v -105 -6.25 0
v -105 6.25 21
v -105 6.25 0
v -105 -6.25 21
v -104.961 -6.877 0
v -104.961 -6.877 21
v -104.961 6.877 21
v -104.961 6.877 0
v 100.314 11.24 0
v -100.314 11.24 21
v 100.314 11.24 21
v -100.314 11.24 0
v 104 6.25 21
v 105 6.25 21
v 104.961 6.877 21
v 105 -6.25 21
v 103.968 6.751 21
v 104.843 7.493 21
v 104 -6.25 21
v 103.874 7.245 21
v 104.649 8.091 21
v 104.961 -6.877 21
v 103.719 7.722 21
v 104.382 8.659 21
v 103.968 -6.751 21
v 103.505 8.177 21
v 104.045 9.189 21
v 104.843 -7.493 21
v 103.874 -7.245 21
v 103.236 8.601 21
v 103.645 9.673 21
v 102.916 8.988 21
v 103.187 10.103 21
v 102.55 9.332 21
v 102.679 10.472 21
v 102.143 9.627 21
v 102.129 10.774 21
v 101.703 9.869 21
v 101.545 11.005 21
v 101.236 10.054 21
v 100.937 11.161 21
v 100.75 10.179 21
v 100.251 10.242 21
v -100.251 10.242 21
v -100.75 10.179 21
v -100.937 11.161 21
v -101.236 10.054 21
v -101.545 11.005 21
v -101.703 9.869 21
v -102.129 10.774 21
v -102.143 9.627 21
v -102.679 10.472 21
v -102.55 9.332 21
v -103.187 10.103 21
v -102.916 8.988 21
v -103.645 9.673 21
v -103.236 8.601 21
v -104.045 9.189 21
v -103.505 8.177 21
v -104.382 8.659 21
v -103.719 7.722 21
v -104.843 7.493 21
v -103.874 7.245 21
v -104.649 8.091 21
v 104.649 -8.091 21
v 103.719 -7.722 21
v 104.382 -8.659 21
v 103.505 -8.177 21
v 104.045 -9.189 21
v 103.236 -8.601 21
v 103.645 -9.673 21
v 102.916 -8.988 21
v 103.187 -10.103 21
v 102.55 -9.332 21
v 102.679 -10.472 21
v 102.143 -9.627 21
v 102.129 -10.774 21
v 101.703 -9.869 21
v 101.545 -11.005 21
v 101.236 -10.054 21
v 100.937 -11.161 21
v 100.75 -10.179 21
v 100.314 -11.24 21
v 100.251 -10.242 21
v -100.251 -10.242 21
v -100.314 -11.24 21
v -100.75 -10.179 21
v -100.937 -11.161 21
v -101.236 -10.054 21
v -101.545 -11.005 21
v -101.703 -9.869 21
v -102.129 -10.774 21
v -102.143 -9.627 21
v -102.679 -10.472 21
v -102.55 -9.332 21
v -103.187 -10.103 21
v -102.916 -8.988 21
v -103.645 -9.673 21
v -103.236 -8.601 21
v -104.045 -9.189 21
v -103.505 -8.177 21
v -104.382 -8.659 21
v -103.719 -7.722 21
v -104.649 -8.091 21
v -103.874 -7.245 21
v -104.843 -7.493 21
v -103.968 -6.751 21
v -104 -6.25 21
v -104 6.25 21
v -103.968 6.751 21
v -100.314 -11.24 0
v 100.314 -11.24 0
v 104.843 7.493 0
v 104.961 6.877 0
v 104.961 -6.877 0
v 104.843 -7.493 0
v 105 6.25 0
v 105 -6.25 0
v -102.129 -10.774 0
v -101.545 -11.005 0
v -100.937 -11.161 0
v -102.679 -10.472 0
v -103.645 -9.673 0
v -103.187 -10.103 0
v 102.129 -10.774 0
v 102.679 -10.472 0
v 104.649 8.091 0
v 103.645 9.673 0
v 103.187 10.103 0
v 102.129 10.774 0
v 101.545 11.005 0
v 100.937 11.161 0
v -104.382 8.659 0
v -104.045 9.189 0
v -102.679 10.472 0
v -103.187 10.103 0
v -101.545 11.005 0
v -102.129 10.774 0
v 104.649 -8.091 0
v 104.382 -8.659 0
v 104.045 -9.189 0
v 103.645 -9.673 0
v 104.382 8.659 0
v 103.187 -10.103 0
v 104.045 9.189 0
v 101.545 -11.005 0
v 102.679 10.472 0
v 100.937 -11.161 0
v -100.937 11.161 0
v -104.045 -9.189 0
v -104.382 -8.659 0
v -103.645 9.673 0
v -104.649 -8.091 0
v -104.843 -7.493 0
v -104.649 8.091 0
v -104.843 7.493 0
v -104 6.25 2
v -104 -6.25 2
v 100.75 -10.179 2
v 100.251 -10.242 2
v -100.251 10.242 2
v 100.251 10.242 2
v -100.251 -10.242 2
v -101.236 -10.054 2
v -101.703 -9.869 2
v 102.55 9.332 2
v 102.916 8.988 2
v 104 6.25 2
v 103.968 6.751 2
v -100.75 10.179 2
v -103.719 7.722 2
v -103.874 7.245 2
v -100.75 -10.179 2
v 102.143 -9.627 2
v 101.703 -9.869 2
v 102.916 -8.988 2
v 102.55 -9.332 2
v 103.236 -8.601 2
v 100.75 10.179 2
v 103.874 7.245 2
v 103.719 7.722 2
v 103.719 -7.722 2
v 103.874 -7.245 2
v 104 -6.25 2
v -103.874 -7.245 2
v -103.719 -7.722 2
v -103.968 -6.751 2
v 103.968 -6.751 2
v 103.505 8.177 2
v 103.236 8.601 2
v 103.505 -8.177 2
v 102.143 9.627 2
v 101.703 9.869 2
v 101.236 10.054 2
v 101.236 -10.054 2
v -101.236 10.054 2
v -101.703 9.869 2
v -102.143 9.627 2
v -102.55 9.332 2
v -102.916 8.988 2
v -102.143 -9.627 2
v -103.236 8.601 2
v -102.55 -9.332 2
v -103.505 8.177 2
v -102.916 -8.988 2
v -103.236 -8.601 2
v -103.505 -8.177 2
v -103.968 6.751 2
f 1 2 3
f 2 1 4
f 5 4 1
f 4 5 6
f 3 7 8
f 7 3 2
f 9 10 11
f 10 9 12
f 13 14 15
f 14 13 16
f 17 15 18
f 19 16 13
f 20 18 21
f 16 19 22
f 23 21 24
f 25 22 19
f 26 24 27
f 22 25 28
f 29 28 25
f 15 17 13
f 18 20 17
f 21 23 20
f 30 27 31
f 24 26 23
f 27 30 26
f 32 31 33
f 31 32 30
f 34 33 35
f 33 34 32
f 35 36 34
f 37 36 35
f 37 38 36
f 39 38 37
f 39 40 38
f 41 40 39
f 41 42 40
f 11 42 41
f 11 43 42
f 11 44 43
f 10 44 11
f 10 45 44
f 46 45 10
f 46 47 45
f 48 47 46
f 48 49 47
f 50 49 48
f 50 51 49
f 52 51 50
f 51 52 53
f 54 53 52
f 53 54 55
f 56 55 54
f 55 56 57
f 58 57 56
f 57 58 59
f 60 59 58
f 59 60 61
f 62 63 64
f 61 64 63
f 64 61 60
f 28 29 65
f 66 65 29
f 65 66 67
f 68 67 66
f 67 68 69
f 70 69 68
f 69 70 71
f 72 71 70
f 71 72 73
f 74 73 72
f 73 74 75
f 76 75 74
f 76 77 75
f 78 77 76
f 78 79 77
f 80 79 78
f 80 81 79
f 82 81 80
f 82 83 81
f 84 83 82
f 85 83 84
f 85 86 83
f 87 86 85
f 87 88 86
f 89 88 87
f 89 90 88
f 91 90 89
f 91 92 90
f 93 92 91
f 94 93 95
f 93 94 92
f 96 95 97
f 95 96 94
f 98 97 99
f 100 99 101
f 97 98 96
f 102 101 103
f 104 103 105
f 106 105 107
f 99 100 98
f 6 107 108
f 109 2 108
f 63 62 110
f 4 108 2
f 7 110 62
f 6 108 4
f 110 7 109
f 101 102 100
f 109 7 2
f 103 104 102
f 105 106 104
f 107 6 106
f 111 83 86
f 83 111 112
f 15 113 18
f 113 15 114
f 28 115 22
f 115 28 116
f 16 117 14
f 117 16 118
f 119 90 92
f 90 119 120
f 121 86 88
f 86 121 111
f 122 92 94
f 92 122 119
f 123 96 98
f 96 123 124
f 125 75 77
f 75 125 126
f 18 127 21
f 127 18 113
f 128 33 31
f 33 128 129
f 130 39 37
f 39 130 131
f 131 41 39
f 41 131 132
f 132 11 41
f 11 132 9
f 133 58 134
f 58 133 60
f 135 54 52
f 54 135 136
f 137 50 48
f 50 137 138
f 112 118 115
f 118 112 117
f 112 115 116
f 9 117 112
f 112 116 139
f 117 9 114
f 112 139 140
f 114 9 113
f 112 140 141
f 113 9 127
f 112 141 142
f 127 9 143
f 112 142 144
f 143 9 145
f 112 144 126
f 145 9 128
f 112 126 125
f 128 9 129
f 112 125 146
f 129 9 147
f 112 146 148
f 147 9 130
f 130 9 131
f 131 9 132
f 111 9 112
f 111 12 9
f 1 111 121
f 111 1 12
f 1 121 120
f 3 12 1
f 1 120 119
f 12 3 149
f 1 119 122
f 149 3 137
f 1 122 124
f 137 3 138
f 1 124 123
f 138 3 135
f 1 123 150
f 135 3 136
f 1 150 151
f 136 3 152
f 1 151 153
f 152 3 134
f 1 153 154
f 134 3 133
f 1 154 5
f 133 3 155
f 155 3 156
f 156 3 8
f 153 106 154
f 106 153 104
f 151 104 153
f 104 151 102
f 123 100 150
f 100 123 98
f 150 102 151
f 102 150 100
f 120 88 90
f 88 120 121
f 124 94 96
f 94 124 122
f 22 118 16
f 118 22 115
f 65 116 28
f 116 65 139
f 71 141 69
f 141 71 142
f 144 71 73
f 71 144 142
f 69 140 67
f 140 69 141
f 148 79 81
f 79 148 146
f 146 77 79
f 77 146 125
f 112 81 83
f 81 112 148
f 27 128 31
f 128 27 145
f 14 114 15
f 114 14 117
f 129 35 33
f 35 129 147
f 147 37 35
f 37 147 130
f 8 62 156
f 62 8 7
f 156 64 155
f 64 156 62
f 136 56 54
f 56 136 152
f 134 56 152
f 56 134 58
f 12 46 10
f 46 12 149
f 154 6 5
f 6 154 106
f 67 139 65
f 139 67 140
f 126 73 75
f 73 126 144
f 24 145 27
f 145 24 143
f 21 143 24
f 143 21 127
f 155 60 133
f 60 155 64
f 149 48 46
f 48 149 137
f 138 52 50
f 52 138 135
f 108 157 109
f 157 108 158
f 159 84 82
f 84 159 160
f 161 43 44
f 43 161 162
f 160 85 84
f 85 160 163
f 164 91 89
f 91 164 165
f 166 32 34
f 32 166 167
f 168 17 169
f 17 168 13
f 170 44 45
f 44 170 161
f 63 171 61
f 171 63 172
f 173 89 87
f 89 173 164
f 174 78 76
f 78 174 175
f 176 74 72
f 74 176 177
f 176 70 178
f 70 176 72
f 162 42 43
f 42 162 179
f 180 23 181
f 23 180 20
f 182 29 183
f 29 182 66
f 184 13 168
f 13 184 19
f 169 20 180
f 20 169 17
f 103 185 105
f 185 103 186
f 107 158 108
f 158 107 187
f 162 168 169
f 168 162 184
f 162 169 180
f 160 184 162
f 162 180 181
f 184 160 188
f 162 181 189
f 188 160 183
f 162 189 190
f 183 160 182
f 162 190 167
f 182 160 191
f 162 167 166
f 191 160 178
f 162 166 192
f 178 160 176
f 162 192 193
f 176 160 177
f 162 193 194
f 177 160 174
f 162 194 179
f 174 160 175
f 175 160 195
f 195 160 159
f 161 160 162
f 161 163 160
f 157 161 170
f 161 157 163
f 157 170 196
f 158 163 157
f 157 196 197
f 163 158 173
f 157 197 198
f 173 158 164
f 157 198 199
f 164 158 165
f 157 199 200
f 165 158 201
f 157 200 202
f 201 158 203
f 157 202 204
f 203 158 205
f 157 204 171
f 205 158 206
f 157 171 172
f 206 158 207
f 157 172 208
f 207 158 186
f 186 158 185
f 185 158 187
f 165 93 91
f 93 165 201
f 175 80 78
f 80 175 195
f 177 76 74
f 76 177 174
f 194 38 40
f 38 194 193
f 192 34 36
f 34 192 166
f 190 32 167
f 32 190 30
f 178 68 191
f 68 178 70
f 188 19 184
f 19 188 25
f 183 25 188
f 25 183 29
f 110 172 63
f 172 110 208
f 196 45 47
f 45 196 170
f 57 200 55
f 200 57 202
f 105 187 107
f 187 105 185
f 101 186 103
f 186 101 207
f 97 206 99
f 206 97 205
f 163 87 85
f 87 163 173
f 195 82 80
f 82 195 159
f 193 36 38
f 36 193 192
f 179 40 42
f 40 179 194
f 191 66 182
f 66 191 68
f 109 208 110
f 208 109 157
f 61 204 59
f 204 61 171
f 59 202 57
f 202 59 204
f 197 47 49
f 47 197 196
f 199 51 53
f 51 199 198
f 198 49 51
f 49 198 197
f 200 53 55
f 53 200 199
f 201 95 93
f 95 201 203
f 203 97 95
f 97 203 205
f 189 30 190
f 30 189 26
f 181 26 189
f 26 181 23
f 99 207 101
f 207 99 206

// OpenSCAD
$fn = 50;


difference() {
	union() {
		hull() {
			translate(v = [-100.0000000000, 6.2500000000, 0]) {
				cylinder(h = 21, r = 5);
			}
			translate(v = [100.0000000000, 6.2500000000, 0]) {
				cylinder(h = 21, r = 5);
			}
			translate(v = [-100.0000000000, -6.2500000000, 0]) {
				cylinder(h = 21, r = 5);
			}
			translate(v = [100.0000000000, -6.2500000000, 0]) {
				cylinder(h = 21, r = 5);
			}
		}
	}
	union() {
		translate(v = [0, 0, 2]) {
			hull() {
				translate(v = [-100.0000000000, 6.2500000000, 0]) {
					cylinder(h = 19, r = 4);
				}
				translate(v = [100.0000000000, 6.2500000000, 0]) {
					cylinder(h = 19, r = 4);
				}
				translate(v = [-100.0000000000, -6.2500000000, 0]) {
					cylinder(h = 19, r = 4);
				}
				translate(v = [100.0000000000, -6.2500000000, 0]) {
					cylinder(h = 19, r = 4);
				}
			}
		}
	}
}
